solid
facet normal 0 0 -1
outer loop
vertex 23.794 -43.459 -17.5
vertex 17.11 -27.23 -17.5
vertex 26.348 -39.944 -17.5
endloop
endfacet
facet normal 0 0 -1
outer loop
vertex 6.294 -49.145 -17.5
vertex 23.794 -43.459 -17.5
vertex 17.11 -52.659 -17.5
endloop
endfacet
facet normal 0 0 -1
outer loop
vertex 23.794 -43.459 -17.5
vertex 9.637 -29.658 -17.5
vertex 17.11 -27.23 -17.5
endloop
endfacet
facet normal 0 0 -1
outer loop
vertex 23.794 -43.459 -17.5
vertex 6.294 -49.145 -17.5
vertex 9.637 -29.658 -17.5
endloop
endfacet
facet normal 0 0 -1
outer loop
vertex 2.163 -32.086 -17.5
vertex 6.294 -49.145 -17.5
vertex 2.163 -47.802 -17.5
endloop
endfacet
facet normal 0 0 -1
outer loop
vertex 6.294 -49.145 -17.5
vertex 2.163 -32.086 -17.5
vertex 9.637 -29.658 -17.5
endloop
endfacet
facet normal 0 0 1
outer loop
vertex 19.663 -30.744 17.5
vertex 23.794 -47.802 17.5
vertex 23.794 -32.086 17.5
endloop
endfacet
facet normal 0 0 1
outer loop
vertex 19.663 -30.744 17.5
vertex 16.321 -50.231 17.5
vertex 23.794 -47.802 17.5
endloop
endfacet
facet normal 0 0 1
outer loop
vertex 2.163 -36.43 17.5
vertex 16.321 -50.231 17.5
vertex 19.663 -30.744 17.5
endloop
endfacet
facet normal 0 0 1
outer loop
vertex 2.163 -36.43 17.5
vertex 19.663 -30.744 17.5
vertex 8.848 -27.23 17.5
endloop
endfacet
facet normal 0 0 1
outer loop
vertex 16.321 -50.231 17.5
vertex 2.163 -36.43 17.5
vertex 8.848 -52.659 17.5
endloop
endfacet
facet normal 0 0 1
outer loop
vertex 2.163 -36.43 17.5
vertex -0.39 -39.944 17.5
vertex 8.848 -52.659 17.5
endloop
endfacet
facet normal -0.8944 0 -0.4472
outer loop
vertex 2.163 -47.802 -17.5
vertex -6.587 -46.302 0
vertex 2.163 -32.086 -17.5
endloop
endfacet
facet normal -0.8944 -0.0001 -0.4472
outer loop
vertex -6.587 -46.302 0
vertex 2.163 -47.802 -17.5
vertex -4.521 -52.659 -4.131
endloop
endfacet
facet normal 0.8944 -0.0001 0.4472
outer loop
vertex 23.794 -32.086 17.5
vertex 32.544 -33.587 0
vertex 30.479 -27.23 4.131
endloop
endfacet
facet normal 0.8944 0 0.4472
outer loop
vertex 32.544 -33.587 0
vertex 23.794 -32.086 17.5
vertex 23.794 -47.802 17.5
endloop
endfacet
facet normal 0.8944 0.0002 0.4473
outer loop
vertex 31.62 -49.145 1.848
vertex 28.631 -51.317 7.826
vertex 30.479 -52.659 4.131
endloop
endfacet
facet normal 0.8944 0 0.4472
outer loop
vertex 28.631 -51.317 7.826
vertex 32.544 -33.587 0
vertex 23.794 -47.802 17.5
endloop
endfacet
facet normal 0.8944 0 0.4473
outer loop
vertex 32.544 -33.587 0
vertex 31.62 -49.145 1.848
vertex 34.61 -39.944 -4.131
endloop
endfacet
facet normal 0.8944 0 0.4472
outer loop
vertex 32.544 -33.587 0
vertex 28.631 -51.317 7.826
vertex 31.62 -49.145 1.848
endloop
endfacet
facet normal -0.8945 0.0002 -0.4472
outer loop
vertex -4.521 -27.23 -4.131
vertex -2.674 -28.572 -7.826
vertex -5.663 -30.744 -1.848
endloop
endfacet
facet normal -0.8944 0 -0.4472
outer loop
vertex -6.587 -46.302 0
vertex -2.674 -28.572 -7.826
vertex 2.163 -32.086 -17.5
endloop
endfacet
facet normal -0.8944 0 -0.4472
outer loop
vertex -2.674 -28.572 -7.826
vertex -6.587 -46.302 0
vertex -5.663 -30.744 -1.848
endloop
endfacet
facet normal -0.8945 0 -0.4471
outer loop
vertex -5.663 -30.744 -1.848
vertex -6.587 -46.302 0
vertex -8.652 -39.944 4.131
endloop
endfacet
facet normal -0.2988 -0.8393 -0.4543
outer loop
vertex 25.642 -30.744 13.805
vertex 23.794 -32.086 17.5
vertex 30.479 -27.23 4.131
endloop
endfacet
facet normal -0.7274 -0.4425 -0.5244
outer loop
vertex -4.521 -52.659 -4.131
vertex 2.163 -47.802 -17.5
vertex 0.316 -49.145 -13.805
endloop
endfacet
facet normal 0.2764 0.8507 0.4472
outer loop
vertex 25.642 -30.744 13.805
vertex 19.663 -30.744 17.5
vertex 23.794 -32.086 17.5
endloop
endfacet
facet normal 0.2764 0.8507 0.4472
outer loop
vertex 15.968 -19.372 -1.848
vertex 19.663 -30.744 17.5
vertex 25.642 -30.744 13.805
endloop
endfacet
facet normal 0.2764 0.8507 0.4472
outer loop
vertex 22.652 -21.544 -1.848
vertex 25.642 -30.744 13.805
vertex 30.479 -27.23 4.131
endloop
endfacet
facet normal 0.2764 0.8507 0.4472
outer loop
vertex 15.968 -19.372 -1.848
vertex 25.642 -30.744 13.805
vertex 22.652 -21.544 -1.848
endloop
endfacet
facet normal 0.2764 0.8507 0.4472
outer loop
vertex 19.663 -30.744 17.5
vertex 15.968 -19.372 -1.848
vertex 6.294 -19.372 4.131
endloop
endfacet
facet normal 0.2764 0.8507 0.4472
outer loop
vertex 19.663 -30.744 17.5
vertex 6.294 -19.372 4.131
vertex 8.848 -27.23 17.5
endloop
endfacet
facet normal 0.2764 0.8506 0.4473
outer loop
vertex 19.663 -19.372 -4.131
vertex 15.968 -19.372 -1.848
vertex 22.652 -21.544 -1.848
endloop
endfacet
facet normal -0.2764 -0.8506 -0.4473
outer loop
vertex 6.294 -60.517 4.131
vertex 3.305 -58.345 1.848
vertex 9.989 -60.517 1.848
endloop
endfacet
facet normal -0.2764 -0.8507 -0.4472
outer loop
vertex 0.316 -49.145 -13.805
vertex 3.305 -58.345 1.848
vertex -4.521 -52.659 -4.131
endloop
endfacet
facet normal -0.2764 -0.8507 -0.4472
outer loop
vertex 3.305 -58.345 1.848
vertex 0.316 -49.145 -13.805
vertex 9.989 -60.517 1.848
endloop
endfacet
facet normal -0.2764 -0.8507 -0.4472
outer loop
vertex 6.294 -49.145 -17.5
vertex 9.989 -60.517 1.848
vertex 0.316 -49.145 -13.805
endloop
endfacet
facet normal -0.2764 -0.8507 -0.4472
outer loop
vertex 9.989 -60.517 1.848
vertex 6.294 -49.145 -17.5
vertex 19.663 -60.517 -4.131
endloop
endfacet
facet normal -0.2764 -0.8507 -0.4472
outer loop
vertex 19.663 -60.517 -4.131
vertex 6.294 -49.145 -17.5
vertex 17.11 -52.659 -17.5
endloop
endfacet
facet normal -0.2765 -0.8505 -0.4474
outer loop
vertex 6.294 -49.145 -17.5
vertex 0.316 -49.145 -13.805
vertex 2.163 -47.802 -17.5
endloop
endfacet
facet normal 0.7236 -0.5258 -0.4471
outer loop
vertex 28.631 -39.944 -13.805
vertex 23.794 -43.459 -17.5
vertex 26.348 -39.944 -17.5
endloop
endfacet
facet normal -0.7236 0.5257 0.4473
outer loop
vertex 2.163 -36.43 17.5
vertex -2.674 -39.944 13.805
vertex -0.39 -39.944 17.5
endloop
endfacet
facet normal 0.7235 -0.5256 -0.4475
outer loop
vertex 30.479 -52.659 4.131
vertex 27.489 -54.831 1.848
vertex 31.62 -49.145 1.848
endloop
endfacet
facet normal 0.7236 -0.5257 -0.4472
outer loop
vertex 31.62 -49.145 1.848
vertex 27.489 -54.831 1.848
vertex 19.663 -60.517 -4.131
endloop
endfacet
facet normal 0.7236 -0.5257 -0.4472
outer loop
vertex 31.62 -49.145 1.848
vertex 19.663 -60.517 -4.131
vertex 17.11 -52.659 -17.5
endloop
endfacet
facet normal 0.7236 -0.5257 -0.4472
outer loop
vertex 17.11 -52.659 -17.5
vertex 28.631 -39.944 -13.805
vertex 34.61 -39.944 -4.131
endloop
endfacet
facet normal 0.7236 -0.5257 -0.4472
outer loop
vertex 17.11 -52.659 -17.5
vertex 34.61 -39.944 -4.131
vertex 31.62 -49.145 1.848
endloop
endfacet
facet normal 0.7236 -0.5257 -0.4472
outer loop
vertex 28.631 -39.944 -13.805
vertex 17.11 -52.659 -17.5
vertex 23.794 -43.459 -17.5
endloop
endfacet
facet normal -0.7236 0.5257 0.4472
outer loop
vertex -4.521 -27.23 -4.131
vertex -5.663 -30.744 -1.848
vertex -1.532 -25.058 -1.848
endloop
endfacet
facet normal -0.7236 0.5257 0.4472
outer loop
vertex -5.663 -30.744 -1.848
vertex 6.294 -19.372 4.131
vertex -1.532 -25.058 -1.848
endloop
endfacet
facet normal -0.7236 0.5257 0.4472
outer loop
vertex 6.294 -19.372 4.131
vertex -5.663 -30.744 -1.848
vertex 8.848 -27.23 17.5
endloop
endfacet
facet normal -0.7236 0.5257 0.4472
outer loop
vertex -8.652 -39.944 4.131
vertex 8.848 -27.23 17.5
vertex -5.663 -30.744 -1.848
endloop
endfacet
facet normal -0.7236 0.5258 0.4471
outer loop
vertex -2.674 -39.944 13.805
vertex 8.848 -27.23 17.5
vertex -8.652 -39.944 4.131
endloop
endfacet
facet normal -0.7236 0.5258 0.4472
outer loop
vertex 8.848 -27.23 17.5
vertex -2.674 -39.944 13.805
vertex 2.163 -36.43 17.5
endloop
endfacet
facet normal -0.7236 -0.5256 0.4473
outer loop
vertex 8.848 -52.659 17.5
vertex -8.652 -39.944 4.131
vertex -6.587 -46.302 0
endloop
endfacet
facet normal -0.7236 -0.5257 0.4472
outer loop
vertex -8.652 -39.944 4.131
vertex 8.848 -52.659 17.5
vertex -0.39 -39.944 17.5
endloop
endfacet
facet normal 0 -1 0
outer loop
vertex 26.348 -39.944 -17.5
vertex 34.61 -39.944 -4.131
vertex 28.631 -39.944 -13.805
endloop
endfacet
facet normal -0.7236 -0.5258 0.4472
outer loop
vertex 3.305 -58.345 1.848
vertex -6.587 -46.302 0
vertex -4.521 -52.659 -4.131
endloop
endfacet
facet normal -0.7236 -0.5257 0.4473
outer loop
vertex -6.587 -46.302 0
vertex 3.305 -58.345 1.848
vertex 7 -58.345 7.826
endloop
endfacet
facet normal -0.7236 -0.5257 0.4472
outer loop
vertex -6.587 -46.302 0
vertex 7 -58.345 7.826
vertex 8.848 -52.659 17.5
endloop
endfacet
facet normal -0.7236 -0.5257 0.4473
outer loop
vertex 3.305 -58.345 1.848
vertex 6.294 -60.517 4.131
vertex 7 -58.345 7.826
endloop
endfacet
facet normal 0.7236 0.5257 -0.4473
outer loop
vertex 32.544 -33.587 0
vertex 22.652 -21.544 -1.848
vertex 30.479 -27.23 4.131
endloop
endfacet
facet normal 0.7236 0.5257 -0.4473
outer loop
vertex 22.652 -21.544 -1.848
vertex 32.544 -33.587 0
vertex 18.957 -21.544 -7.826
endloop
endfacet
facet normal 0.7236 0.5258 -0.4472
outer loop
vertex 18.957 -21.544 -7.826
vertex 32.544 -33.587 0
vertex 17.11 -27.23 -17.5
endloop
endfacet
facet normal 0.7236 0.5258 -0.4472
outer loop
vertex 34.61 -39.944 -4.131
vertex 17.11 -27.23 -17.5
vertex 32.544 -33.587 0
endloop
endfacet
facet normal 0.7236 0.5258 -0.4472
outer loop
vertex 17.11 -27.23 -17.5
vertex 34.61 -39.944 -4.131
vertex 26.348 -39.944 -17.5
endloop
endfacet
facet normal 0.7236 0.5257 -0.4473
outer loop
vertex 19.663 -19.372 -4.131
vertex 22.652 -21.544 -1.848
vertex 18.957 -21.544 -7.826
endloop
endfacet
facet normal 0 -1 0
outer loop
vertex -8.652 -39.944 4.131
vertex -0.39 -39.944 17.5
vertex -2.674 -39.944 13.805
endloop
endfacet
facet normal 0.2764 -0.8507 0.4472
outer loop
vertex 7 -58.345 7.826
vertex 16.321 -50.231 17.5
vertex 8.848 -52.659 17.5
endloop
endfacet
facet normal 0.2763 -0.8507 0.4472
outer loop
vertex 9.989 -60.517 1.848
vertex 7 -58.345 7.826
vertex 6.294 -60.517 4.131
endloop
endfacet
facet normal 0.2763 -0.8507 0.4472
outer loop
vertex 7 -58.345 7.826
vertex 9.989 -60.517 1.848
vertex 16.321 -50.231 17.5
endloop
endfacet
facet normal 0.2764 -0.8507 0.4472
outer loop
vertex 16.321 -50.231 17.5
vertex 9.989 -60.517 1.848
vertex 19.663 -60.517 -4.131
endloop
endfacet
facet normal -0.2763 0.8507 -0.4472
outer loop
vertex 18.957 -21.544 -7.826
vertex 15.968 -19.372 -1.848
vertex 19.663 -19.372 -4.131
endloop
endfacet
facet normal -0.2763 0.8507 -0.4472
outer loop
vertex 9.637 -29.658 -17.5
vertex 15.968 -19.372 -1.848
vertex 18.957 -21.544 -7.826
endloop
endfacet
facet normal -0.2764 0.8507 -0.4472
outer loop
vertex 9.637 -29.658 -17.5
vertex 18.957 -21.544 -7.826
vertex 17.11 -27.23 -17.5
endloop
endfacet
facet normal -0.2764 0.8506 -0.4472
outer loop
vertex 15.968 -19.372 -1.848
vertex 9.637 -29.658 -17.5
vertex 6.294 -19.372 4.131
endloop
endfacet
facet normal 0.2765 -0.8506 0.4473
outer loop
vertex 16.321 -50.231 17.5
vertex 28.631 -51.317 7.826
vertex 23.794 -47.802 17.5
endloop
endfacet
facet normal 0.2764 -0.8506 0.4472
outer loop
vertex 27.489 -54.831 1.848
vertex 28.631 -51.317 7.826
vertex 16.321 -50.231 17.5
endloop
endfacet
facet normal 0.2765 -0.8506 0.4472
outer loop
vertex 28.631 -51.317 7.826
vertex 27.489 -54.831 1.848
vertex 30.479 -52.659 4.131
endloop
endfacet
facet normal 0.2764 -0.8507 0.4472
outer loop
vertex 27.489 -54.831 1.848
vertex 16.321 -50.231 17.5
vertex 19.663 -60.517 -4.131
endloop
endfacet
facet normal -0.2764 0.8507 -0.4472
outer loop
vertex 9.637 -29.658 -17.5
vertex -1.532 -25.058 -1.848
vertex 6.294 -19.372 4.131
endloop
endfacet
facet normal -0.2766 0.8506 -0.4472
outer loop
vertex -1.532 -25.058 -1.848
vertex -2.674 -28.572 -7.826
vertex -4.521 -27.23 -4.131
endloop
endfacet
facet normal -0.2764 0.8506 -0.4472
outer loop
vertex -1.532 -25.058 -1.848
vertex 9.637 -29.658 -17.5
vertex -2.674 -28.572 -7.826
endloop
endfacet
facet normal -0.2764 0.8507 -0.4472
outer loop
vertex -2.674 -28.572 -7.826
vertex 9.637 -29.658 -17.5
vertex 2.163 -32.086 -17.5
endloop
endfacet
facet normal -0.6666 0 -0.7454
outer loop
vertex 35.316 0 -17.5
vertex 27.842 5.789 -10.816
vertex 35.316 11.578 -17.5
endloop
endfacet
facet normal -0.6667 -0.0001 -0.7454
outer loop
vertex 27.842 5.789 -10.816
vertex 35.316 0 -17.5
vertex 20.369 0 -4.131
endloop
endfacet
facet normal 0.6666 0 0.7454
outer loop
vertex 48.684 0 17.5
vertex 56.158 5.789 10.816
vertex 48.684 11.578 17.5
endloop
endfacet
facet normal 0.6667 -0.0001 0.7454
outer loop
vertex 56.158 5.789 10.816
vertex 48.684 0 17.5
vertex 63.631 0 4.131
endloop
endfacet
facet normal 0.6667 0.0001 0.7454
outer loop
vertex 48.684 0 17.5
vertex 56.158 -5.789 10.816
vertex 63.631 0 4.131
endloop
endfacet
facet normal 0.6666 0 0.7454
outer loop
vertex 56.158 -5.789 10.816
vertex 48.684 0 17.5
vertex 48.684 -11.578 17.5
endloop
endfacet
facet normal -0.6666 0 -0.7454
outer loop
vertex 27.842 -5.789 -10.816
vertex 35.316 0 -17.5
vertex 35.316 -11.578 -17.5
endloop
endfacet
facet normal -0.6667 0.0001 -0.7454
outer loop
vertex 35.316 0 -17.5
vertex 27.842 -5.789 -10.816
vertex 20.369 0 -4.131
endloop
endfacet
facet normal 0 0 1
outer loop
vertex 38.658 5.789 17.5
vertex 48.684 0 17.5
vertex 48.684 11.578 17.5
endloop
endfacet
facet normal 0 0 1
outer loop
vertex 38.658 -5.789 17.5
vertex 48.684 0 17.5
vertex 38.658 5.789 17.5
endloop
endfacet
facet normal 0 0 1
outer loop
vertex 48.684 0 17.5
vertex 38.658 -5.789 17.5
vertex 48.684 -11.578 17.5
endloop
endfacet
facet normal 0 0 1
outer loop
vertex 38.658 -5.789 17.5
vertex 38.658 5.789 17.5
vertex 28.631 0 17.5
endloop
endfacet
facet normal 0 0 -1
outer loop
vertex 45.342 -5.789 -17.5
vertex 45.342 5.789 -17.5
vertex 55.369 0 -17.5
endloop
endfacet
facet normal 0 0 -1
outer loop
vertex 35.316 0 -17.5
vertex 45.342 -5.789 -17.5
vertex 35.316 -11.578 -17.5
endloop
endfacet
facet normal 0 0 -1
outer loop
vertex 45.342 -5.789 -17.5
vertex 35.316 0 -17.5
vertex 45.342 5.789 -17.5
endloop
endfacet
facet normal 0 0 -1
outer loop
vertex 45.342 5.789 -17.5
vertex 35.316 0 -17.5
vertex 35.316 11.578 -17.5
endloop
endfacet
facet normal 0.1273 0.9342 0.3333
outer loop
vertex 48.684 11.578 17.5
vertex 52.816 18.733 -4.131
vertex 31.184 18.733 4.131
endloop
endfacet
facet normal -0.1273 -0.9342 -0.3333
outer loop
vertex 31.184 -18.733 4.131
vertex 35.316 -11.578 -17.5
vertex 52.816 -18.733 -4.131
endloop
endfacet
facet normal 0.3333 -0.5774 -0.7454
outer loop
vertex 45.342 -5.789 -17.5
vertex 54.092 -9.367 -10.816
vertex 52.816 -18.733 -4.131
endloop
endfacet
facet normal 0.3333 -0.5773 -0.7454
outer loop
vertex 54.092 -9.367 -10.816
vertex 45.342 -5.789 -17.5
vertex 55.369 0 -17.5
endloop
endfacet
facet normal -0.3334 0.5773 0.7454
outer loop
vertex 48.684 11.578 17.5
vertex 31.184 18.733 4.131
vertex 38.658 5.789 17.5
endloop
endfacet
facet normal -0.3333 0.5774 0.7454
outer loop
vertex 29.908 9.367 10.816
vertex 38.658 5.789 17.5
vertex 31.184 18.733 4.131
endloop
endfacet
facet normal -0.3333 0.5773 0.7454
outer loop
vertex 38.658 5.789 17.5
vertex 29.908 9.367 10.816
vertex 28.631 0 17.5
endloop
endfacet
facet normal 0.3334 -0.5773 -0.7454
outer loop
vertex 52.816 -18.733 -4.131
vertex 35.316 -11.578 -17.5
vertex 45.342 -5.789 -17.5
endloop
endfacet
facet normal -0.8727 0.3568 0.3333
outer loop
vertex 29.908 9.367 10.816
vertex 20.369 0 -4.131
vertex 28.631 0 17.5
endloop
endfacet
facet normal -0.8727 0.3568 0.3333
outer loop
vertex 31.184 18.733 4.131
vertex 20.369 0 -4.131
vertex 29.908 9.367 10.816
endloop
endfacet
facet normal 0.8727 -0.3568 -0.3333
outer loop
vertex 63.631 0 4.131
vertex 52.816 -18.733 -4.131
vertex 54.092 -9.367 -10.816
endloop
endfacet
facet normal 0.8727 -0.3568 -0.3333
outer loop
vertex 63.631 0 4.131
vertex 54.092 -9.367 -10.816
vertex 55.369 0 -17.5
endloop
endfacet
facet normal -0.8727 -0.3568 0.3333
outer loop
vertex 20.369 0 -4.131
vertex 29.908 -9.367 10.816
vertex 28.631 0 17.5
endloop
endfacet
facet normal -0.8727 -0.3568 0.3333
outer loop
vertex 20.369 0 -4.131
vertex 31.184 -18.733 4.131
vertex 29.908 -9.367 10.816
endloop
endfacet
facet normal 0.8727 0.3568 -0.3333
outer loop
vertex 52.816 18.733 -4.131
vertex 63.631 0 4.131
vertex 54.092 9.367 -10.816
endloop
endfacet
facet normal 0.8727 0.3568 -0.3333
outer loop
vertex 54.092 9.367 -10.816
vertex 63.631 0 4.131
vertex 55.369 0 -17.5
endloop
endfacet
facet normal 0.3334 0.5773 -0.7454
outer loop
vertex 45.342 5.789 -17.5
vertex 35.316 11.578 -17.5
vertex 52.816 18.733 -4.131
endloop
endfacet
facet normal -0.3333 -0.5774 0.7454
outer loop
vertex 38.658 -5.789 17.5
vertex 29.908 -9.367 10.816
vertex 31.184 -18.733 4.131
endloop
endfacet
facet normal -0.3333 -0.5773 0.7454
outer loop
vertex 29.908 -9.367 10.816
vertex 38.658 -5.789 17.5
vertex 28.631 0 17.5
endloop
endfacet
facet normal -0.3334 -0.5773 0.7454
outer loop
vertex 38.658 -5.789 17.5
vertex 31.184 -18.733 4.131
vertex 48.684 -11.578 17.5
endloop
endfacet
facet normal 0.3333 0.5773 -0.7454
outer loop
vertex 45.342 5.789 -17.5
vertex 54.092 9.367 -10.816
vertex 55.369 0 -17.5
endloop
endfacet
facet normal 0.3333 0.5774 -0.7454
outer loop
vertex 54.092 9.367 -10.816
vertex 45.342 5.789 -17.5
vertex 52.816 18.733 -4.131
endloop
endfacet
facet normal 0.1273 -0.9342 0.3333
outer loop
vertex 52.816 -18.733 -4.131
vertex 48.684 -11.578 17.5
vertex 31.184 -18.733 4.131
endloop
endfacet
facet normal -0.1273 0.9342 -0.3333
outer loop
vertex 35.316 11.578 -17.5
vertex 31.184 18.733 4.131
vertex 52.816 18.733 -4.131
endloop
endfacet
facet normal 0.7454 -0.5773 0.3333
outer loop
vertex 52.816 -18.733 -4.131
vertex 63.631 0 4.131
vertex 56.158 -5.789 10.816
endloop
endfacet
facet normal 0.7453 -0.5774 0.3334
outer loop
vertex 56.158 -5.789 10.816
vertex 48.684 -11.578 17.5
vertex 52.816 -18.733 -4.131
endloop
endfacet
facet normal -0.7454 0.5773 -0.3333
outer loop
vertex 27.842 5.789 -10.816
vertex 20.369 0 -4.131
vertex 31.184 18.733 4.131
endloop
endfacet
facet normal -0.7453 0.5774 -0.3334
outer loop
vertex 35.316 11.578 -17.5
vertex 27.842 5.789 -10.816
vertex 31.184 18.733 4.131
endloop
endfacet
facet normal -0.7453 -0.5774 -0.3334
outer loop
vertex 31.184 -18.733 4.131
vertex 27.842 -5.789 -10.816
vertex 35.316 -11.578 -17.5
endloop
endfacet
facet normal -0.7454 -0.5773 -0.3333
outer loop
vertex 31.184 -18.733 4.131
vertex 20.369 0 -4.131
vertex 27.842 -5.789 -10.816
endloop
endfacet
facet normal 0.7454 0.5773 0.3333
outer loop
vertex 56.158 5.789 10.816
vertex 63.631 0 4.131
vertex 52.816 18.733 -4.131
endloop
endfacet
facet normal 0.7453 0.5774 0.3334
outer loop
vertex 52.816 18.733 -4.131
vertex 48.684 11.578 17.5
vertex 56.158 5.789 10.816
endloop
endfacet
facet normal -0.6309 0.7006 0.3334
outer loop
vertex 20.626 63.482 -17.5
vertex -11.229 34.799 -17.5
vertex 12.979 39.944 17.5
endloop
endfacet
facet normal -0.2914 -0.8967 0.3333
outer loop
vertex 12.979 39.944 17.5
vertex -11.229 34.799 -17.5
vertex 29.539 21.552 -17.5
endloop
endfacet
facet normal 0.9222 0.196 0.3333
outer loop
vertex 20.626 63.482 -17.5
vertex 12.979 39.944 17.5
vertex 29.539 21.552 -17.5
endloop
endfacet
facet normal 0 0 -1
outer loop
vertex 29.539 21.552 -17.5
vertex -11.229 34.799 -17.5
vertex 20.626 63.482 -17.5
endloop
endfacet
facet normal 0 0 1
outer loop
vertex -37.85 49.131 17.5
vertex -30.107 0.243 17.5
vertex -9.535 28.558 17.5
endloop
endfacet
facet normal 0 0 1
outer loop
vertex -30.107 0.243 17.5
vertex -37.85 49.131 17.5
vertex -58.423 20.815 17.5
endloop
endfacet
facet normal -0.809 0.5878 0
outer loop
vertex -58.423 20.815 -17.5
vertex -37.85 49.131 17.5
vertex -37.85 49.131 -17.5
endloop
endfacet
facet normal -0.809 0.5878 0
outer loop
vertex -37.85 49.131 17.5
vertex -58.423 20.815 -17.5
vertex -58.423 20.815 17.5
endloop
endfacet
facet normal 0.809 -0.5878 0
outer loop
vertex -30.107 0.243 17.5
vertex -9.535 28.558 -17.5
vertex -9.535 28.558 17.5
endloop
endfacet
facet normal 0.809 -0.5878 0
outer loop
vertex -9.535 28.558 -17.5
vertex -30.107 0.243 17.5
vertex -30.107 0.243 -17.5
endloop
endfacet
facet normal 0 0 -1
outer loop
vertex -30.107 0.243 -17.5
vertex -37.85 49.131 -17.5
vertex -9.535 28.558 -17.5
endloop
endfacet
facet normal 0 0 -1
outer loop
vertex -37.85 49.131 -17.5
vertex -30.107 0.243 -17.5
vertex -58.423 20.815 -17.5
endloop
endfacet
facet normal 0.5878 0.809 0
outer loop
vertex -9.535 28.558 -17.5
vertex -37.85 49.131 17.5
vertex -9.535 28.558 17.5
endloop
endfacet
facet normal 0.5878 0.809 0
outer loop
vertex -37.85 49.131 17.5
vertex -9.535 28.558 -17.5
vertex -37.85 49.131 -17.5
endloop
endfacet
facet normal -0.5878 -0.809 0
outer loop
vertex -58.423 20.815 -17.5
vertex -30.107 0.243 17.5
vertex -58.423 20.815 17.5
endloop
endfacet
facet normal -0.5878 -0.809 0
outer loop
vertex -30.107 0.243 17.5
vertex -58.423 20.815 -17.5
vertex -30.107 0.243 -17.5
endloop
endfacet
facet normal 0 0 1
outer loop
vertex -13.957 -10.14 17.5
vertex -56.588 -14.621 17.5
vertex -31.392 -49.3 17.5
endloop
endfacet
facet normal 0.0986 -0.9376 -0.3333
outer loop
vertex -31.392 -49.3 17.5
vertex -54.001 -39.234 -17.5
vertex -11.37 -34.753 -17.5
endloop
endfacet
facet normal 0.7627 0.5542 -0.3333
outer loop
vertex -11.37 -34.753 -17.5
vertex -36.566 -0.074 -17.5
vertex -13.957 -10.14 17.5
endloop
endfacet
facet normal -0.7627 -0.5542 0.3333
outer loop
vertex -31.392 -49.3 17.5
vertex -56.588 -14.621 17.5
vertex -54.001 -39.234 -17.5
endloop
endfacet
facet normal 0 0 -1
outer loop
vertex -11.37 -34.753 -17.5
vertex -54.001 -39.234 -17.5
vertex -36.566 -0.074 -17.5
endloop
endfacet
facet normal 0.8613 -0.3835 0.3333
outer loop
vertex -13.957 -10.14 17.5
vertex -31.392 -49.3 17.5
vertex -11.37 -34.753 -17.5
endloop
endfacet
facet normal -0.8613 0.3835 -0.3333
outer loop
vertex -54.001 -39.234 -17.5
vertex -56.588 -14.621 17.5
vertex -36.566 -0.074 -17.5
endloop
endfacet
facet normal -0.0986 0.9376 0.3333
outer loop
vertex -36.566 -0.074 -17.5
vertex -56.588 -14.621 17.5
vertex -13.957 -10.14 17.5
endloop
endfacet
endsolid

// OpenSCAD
// file platonicSolids.scad
// makes platonic solids of radius size
// (c) 2020 Rich Cameron, CC-BY 

size = 35;

rotate(72 * 1) translate([size * 1.2, 0, 0]) tetrahedron(size);
rotate(72 * 2) translate([size * 1.2, 0, 0]) cube(size, center = true);
rotate(72 * 3) translate([size * 1.2, 0, 0]) octahedron(size);
rotate(72 * 4) translate([size * 1.2, 0, 0]) dodecahedron(size);
rotate(72 * 5) translate([size * 1.2, 0, 0]) icosahedron(size);
/**/

/*tetrahedron(size);
translate([-size * 1, 0, 0]) cube(size, center = true);
translate([-size * 2.5, 0, 0]) octahedron(size);
translate([-size * 4, 0, 0]) dodecahedron(size);
translate([-size * 5.5, 0, 0]) icosahedron(size);
/**/


module tetrahedron(size = 1) cylinder(r1 = size / sqrt(2), r2 = 0, h = size, center = true, $fn = 3);

module octahedron(size = 1) hull() for(i = [0, 1]) mirror([0, 0, i]) mirror([i, 0, 0]) tetrahedron(size);

module dodecahedron(size = 1) intersection_for(a = [0:72:360]) rotate([0, a ? atan(2) : 0, a]) cylinder(r = size, h = size, center = true, $fn = 10);

module icosahedron(size = 1) intersection_for(a = [0:120:360], b = [-60, 0, 60]) rotate([0, a ? acos(sqrt(5) / 3) : 0, a]) rotate([0, b ? acos(sqrt(5) / 3) : 0, a ? b : 0]) cylinder(r = size, h = size, $fn = 6, center = true);
